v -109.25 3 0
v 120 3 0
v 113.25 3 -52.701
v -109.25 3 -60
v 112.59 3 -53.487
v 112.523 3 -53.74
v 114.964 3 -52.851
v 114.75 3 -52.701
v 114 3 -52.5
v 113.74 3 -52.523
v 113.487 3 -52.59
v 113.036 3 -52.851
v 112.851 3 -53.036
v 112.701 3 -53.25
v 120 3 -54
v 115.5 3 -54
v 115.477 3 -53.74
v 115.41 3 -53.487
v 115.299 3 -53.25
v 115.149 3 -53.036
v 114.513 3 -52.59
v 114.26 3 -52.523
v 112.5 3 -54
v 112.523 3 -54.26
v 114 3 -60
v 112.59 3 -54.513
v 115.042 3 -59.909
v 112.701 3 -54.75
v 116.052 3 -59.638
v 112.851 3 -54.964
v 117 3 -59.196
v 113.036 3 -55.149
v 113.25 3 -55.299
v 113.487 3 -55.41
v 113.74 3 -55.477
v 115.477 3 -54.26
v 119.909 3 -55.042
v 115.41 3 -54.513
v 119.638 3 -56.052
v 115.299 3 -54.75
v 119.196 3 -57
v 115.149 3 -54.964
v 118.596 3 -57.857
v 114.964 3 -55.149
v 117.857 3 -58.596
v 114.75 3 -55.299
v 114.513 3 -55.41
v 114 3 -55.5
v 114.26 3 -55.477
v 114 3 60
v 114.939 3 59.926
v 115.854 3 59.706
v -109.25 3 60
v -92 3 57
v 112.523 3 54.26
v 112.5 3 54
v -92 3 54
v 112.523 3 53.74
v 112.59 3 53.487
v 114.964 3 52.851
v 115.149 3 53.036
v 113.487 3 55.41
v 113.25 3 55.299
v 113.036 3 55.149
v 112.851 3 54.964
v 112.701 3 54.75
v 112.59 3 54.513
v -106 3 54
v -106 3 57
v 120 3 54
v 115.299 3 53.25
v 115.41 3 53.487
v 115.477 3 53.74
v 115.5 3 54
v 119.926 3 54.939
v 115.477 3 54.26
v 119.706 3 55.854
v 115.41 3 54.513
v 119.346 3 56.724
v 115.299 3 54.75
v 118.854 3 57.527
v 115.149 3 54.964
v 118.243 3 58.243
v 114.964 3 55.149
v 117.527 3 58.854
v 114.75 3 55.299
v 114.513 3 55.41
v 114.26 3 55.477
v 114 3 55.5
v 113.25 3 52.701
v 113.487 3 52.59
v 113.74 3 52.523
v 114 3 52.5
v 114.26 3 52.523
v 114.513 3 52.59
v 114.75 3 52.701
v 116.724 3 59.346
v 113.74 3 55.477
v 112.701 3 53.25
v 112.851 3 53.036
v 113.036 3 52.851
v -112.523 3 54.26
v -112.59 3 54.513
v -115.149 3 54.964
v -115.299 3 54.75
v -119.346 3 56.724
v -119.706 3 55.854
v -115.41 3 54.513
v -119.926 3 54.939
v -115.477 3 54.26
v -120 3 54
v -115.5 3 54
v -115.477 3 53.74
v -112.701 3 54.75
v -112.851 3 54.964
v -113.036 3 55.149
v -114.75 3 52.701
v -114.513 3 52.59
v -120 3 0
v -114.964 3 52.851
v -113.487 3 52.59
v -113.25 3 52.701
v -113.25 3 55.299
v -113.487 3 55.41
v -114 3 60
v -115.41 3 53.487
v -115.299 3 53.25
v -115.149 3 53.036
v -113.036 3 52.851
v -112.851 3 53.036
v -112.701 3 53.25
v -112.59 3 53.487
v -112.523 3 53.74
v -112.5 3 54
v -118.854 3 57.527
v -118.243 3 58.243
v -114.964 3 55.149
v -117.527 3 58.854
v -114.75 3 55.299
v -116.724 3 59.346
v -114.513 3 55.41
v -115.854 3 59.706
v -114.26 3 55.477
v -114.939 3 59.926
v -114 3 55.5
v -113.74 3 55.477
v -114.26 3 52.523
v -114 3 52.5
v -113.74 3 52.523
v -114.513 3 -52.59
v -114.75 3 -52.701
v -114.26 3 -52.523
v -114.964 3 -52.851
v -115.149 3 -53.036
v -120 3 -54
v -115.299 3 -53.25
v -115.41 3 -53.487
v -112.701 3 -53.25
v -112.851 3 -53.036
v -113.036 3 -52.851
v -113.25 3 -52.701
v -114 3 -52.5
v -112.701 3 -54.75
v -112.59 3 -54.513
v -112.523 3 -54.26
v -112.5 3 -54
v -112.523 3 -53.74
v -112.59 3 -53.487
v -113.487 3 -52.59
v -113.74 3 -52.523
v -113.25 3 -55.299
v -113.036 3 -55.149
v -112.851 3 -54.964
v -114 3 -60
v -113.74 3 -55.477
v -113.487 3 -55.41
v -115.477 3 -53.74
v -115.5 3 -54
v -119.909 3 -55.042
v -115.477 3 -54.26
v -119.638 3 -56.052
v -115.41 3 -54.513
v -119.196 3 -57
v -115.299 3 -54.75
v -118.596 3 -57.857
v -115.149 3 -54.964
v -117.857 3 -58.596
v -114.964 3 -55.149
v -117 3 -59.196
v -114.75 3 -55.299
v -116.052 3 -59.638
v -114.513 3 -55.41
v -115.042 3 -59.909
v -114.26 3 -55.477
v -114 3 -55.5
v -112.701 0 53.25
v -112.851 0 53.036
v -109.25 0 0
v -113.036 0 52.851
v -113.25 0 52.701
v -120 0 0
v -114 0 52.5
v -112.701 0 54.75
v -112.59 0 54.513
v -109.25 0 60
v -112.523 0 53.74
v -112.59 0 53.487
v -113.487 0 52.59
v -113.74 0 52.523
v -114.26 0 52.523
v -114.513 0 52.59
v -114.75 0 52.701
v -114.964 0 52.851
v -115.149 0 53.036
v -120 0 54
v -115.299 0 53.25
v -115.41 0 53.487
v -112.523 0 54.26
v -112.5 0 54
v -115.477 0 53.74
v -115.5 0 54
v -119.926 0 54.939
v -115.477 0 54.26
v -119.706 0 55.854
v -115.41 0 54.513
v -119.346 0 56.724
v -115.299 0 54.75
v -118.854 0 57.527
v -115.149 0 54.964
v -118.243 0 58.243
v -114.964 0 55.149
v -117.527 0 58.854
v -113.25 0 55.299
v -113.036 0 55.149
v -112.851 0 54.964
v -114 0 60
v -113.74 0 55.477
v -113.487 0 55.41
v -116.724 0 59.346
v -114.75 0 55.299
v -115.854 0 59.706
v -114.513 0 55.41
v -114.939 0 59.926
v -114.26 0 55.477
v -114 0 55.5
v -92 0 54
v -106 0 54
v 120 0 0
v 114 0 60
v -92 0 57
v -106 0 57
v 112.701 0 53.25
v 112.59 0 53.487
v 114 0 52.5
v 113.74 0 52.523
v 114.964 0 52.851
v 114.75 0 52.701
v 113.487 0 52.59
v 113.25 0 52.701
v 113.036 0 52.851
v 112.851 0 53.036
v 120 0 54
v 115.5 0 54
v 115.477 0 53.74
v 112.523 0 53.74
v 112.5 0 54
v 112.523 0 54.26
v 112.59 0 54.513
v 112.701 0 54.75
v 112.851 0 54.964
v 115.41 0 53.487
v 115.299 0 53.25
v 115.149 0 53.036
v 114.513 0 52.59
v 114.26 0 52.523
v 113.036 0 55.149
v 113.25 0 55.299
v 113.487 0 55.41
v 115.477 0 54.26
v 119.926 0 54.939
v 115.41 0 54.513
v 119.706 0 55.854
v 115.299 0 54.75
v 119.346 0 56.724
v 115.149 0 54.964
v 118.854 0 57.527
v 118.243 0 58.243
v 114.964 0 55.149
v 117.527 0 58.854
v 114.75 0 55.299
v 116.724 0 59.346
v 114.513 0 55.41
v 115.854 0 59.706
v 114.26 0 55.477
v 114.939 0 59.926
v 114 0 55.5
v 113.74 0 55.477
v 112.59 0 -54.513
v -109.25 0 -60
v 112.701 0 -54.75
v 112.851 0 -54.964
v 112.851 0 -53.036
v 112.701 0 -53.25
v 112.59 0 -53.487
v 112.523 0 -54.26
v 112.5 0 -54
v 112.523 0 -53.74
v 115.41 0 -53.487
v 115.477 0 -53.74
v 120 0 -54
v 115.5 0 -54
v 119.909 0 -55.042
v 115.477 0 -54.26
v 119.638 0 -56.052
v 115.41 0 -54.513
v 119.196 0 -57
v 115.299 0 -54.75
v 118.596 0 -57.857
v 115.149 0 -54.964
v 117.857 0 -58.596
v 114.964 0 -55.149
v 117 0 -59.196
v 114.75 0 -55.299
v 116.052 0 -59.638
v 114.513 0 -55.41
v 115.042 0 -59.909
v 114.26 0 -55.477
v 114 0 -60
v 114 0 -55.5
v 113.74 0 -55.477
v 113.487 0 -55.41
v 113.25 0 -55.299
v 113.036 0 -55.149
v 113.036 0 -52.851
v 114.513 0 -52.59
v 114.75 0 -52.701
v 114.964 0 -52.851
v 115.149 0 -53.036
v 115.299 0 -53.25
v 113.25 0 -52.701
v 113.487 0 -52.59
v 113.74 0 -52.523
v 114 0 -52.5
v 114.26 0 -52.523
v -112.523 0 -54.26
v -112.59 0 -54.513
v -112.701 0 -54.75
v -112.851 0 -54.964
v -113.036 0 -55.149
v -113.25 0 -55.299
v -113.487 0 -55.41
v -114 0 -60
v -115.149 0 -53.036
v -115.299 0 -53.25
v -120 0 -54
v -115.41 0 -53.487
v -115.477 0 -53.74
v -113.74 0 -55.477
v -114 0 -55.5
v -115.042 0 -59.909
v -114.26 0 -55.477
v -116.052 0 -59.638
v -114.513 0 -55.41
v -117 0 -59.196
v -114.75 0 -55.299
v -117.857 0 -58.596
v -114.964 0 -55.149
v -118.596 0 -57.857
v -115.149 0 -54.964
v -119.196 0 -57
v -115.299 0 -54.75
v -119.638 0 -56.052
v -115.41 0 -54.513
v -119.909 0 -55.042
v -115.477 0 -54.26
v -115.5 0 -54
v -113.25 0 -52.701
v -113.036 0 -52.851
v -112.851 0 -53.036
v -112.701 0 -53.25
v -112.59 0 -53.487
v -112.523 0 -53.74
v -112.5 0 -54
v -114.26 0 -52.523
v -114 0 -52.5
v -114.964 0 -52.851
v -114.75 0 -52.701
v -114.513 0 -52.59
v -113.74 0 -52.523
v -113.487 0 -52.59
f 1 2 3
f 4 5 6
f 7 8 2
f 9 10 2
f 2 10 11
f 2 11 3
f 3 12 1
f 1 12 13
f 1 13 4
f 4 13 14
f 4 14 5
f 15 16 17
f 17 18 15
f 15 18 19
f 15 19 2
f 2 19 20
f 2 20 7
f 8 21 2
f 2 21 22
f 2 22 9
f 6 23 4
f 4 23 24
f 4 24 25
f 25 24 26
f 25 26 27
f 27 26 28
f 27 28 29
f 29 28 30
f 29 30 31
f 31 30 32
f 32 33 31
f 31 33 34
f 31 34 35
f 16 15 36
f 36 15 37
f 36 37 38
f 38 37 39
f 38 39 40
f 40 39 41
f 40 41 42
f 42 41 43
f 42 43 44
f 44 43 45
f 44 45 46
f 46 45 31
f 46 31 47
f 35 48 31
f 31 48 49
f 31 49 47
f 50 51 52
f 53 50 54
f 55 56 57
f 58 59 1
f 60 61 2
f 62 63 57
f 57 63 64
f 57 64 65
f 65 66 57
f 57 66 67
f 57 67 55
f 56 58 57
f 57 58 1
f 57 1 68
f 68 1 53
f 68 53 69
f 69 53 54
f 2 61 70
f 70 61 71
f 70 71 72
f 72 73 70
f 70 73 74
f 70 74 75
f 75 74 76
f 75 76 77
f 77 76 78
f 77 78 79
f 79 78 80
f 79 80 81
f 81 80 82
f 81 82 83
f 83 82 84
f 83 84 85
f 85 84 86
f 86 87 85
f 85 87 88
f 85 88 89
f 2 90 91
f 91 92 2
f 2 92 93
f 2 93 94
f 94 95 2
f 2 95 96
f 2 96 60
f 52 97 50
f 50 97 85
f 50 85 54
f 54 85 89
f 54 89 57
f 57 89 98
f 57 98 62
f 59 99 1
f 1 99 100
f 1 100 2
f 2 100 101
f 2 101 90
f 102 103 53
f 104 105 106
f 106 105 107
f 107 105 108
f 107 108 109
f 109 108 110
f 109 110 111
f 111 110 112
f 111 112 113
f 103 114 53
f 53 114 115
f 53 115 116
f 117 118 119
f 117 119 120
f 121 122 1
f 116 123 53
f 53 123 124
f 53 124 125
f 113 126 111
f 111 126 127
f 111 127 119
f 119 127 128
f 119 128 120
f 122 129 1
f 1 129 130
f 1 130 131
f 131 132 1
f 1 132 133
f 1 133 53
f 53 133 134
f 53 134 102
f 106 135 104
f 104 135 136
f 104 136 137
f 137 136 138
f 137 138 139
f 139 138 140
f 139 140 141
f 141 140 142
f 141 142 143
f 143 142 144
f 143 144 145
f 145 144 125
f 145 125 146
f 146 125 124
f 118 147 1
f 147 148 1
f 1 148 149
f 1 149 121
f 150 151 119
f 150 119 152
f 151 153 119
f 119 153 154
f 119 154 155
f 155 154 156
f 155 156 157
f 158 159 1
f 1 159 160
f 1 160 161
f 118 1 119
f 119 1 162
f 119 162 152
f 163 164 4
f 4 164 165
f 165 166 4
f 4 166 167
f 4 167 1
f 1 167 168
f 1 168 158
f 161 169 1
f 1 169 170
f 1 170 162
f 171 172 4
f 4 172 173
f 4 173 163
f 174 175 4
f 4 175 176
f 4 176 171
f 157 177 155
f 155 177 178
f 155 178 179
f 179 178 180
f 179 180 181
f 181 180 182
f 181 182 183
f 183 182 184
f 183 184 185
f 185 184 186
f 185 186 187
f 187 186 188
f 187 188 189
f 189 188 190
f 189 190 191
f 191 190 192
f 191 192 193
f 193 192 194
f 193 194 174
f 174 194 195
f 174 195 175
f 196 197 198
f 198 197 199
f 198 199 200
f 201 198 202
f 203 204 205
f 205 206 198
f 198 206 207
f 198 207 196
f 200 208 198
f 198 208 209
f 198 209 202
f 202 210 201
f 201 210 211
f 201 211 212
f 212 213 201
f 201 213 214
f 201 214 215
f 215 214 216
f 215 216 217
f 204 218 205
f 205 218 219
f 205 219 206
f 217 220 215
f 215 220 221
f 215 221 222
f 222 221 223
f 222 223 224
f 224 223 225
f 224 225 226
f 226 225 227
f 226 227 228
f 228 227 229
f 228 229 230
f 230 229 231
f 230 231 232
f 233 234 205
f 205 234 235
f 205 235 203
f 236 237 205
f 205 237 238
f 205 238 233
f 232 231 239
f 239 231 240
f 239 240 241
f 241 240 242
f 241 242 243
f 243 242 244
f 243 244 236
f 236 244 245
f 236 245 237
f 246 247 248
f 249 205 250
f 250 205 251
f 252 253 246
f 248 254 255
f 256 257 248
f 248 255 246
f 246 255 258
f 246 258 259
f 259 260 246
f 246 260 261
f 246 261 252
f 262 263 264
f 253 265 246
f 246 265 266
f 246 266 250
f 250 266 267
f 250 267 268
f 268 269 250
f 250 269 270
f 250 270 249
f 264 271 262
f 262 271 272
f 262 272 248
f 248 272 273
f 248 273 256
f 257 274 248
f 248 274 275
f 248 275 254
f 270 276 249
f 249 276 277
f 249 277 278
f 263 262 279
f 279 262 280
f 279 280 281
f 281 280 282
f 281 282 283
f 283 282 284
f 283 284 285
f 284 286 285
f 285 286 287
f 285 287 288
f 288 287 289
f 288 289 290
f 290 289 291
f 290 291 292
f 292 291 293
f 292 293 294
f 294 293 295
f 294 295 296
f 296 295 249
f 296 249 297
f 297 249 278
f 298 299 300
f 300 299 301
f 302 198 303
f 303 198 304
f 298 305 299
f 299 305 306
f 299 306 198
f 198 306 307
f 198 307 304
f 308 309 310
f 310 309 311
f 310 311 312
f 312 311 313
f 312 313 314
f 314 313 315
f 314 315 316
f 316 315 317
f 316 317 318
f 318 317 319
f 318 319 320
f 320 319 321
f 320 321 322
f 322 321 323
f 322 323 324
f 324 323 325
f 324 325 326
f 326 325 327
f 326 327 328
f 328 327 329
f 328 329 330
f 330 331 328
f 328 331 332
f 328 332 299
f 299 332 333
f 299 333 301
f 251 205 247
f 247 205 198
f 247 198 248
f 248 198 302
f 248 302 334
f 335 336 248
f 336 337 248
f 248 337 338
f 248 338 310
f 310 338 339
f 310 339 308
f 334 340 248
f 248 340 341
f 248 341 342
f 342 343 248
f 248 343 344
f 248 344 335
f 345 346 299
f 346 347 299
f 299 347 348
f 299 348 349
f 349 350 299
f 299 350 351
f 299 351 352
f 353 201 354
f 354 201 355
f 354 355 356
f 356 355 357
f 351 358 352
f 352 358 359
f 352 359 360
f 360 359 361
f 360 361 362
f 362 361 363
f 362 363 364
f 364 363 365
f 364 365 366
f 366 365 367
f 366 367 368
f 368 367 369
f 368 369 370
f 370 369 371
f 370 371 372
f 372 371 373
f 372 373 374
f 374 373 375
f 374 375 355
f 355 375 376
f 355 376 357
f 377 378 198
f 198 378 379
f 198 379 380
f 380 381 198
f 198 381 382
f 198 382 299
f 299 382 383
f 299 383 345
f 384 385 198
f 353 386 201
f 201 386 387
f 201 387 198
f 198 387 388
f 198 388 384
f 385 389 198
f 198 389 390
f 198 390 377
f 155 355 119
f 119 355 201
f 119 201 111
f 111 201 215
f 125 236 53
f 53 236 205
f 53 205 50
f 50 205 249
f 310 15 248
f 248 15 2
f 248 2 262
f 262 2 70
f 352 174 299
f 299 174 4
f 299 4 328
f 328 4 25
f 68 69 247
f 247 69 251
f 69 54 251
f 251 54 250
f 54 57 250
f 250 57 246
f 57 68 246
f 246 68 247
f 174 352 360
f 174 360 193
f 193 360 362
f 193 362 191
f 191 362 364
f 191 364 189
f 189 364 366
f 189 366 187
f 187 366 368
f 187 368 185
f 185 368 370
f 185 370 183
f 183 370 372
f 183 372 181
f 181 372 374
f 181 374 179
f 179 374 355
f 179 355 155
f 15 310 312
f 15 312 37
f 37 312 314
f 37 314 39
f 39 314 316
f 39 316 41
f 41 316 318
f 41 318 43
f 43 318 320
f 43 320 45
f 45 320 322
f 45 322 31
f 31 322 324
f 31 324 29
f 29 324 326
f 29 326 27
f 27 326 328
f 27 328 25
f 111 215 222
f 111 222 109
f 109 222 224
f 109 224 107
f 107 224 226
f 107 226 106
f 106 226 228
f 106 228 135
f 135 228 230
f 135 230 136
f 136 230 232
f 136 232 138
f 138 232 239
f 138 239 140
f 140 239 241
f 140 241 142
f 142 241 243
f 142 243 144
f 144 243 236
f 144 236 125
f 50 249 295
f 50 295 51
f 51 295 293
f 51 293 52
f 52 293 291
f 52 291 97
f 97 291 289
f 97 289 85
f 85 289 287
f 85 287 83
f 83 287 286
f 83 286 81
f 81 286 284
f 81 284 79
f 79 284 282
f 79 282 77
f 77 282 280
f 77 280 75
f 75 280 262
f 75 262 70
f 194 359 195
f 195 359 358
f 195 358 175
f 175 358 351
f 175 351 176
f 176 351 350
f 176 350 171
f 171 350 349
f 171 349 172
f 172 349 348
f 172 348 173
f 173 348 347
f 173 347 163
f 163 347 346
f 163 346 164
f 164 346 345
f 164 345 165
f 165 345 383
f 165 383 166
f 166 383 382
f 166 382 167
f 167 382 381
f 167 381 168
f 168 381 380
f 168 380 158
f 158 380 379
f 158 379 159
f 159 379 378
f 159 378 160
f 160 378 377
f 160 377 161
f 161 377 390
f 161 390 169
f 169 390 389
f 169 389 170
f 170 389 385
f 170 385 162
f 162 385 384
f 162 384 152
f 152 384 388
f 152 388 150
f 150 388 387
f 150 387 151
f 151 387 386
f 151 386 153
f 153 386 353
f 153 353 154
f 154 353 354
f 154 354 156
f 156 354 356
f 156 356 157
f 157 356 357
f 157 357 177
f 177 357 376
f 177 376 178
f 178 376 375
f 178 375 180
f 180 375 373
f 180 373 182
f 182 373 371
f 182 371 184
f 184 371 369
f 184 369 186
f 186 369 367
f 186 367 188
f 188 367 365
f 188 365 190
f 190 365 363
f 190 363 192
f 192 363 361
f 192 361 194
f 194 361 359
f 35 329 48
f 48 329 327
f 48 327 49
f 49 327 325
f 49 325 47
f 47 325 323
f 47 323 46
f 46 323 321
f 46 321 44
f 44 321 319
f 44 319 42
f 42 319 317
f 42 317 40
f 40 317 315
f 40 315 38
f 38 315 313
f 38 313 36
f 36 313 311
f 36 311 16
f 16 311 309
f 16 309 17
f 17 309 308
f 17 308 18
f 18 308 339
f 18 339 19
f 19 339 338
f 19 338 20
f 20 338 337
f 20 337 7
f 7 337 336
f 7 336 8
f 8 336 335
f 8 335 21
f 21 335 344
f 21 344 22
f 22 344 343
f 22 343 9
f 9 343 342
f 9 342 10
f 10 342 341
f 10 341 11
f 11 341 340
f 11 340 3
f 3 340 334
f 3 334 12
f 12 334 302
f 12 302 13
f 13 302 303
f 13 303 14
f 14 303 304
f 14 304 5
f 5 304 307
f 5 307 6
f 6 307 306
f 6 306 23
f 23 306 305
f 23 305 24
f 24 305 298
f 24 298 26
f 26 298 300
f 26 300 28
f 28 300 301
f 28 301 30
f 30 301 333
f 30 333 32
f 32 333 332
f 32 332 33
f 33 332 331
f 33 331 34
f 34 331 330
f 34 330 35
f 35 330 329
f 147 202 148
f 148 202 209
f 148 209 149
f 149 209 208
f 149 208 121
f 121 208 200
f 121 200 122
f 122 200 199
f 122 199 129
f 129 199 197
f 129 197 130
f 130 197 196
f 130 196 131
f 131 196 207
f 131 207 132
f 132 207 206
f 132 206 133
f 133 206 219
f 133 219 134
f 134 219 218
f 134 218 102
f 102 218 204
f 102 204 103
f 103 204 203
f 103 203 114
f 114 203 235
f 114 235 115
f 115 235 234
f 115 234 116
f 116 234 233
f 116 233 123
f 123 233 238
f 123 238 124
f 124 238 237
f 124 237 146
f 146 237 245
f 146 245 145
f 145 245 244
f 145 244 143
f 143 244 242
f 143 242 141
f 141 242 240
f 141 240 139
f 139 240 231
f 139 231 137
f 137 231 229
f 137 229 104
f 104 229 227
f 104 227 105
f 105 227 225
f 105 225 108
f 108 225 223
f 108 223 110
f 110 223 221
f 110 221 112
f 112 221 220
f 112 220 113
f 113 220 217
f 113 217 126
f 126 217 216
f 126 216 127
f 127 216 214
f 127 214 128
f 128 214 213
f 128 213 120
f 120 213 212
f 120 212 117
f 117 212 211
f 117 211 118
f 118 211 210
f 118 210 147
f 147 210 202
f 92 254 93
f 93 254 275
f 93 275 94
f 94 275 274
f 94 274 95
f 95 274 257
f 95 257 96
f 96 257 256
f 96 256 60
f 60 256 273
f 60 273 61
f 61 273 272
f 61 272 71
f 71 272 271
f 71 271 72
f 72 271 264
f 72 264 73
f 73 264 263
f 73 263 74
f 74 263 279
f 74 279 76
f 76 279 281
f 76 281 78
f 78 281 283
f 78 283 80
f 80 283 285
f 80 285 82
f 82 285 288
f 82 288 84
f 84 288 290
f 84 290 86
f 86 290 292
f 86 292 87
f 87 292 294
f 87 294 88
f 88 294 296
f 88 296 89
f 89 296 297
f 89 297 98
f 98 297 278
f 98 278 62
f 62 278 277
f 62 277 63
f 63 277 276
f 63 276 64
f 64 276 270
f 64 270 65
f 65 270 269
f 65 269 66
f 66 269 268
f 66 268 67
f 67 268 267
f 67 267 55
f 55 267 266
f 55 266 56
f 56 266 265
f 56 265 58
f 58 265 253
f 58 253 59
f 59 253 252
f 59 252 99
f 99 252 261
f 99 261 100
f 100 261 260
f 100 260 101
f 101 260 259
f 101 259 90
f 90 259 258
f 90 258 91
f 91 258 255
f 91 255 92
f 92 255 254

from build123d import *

# Parameters (mm, degrees)
SKETCH1_W           = 240
SKETCH1_H           = 120
SKETCH1_W_2         = 14
SKETCH1_H_2         = 3
BOSS_EXTRUDE1_DEPTH = 3
FILLET1_R           = 6
SKETCH2_R           = 1.5
CUT_EXTRUDE2_DEPTH  = 4


with BuildPart() as part:
    # Sketch1 → Boss-Extrude1 (new body)
    with BuildSketch(Plane(origin=(0, 0, 0), x_dir=(1, 0, 0), z_dir=(0, 1, 0))):
        Rectangle(SKETCH1_W, SKETCH1_H)
        with Locations((-99, -55.5)):
            Rectangle(SKETCH1_W_2, SKETCH1_H_2, mode=Mode.SUBTRACT)
    extrude(amount=BOSS_EXTRUDE1_DEPTH)

    # Fillet1
    fillet1_edges = [part.edges().sort_by_distance(p)[0] for p in [
        (-120, 1.5, -60),
        (120, 1.5, -60),
        (120, 1.5, 60),
        (-120, 1.5, 60),
    ]]
    fillet(fillet1_edges, radius=FILLET1_R)

    # Sketch2 → Cut-Extrude2 (cut, through all)
    with BuildSketch(Plane(origin=(0, 0, 0), x_dir=(1, 0, 0), z_dir=(0, 1, 0))):
        with Locations((-114, 54)):
            Circle(SKETCH2_R)
        with Locations((114, 54)):
            Circle(SKETCH2_R)
        with Locations((-114, -54)):
            Circle(SKETCH2_R)
        with Locations((114, -54)):
            Circle(SKETCH2_R)
    extrude(amount=CUT_EXTRUDE2_DEPTH, mode=Mode.SUBTRACT)


solid = part.part
